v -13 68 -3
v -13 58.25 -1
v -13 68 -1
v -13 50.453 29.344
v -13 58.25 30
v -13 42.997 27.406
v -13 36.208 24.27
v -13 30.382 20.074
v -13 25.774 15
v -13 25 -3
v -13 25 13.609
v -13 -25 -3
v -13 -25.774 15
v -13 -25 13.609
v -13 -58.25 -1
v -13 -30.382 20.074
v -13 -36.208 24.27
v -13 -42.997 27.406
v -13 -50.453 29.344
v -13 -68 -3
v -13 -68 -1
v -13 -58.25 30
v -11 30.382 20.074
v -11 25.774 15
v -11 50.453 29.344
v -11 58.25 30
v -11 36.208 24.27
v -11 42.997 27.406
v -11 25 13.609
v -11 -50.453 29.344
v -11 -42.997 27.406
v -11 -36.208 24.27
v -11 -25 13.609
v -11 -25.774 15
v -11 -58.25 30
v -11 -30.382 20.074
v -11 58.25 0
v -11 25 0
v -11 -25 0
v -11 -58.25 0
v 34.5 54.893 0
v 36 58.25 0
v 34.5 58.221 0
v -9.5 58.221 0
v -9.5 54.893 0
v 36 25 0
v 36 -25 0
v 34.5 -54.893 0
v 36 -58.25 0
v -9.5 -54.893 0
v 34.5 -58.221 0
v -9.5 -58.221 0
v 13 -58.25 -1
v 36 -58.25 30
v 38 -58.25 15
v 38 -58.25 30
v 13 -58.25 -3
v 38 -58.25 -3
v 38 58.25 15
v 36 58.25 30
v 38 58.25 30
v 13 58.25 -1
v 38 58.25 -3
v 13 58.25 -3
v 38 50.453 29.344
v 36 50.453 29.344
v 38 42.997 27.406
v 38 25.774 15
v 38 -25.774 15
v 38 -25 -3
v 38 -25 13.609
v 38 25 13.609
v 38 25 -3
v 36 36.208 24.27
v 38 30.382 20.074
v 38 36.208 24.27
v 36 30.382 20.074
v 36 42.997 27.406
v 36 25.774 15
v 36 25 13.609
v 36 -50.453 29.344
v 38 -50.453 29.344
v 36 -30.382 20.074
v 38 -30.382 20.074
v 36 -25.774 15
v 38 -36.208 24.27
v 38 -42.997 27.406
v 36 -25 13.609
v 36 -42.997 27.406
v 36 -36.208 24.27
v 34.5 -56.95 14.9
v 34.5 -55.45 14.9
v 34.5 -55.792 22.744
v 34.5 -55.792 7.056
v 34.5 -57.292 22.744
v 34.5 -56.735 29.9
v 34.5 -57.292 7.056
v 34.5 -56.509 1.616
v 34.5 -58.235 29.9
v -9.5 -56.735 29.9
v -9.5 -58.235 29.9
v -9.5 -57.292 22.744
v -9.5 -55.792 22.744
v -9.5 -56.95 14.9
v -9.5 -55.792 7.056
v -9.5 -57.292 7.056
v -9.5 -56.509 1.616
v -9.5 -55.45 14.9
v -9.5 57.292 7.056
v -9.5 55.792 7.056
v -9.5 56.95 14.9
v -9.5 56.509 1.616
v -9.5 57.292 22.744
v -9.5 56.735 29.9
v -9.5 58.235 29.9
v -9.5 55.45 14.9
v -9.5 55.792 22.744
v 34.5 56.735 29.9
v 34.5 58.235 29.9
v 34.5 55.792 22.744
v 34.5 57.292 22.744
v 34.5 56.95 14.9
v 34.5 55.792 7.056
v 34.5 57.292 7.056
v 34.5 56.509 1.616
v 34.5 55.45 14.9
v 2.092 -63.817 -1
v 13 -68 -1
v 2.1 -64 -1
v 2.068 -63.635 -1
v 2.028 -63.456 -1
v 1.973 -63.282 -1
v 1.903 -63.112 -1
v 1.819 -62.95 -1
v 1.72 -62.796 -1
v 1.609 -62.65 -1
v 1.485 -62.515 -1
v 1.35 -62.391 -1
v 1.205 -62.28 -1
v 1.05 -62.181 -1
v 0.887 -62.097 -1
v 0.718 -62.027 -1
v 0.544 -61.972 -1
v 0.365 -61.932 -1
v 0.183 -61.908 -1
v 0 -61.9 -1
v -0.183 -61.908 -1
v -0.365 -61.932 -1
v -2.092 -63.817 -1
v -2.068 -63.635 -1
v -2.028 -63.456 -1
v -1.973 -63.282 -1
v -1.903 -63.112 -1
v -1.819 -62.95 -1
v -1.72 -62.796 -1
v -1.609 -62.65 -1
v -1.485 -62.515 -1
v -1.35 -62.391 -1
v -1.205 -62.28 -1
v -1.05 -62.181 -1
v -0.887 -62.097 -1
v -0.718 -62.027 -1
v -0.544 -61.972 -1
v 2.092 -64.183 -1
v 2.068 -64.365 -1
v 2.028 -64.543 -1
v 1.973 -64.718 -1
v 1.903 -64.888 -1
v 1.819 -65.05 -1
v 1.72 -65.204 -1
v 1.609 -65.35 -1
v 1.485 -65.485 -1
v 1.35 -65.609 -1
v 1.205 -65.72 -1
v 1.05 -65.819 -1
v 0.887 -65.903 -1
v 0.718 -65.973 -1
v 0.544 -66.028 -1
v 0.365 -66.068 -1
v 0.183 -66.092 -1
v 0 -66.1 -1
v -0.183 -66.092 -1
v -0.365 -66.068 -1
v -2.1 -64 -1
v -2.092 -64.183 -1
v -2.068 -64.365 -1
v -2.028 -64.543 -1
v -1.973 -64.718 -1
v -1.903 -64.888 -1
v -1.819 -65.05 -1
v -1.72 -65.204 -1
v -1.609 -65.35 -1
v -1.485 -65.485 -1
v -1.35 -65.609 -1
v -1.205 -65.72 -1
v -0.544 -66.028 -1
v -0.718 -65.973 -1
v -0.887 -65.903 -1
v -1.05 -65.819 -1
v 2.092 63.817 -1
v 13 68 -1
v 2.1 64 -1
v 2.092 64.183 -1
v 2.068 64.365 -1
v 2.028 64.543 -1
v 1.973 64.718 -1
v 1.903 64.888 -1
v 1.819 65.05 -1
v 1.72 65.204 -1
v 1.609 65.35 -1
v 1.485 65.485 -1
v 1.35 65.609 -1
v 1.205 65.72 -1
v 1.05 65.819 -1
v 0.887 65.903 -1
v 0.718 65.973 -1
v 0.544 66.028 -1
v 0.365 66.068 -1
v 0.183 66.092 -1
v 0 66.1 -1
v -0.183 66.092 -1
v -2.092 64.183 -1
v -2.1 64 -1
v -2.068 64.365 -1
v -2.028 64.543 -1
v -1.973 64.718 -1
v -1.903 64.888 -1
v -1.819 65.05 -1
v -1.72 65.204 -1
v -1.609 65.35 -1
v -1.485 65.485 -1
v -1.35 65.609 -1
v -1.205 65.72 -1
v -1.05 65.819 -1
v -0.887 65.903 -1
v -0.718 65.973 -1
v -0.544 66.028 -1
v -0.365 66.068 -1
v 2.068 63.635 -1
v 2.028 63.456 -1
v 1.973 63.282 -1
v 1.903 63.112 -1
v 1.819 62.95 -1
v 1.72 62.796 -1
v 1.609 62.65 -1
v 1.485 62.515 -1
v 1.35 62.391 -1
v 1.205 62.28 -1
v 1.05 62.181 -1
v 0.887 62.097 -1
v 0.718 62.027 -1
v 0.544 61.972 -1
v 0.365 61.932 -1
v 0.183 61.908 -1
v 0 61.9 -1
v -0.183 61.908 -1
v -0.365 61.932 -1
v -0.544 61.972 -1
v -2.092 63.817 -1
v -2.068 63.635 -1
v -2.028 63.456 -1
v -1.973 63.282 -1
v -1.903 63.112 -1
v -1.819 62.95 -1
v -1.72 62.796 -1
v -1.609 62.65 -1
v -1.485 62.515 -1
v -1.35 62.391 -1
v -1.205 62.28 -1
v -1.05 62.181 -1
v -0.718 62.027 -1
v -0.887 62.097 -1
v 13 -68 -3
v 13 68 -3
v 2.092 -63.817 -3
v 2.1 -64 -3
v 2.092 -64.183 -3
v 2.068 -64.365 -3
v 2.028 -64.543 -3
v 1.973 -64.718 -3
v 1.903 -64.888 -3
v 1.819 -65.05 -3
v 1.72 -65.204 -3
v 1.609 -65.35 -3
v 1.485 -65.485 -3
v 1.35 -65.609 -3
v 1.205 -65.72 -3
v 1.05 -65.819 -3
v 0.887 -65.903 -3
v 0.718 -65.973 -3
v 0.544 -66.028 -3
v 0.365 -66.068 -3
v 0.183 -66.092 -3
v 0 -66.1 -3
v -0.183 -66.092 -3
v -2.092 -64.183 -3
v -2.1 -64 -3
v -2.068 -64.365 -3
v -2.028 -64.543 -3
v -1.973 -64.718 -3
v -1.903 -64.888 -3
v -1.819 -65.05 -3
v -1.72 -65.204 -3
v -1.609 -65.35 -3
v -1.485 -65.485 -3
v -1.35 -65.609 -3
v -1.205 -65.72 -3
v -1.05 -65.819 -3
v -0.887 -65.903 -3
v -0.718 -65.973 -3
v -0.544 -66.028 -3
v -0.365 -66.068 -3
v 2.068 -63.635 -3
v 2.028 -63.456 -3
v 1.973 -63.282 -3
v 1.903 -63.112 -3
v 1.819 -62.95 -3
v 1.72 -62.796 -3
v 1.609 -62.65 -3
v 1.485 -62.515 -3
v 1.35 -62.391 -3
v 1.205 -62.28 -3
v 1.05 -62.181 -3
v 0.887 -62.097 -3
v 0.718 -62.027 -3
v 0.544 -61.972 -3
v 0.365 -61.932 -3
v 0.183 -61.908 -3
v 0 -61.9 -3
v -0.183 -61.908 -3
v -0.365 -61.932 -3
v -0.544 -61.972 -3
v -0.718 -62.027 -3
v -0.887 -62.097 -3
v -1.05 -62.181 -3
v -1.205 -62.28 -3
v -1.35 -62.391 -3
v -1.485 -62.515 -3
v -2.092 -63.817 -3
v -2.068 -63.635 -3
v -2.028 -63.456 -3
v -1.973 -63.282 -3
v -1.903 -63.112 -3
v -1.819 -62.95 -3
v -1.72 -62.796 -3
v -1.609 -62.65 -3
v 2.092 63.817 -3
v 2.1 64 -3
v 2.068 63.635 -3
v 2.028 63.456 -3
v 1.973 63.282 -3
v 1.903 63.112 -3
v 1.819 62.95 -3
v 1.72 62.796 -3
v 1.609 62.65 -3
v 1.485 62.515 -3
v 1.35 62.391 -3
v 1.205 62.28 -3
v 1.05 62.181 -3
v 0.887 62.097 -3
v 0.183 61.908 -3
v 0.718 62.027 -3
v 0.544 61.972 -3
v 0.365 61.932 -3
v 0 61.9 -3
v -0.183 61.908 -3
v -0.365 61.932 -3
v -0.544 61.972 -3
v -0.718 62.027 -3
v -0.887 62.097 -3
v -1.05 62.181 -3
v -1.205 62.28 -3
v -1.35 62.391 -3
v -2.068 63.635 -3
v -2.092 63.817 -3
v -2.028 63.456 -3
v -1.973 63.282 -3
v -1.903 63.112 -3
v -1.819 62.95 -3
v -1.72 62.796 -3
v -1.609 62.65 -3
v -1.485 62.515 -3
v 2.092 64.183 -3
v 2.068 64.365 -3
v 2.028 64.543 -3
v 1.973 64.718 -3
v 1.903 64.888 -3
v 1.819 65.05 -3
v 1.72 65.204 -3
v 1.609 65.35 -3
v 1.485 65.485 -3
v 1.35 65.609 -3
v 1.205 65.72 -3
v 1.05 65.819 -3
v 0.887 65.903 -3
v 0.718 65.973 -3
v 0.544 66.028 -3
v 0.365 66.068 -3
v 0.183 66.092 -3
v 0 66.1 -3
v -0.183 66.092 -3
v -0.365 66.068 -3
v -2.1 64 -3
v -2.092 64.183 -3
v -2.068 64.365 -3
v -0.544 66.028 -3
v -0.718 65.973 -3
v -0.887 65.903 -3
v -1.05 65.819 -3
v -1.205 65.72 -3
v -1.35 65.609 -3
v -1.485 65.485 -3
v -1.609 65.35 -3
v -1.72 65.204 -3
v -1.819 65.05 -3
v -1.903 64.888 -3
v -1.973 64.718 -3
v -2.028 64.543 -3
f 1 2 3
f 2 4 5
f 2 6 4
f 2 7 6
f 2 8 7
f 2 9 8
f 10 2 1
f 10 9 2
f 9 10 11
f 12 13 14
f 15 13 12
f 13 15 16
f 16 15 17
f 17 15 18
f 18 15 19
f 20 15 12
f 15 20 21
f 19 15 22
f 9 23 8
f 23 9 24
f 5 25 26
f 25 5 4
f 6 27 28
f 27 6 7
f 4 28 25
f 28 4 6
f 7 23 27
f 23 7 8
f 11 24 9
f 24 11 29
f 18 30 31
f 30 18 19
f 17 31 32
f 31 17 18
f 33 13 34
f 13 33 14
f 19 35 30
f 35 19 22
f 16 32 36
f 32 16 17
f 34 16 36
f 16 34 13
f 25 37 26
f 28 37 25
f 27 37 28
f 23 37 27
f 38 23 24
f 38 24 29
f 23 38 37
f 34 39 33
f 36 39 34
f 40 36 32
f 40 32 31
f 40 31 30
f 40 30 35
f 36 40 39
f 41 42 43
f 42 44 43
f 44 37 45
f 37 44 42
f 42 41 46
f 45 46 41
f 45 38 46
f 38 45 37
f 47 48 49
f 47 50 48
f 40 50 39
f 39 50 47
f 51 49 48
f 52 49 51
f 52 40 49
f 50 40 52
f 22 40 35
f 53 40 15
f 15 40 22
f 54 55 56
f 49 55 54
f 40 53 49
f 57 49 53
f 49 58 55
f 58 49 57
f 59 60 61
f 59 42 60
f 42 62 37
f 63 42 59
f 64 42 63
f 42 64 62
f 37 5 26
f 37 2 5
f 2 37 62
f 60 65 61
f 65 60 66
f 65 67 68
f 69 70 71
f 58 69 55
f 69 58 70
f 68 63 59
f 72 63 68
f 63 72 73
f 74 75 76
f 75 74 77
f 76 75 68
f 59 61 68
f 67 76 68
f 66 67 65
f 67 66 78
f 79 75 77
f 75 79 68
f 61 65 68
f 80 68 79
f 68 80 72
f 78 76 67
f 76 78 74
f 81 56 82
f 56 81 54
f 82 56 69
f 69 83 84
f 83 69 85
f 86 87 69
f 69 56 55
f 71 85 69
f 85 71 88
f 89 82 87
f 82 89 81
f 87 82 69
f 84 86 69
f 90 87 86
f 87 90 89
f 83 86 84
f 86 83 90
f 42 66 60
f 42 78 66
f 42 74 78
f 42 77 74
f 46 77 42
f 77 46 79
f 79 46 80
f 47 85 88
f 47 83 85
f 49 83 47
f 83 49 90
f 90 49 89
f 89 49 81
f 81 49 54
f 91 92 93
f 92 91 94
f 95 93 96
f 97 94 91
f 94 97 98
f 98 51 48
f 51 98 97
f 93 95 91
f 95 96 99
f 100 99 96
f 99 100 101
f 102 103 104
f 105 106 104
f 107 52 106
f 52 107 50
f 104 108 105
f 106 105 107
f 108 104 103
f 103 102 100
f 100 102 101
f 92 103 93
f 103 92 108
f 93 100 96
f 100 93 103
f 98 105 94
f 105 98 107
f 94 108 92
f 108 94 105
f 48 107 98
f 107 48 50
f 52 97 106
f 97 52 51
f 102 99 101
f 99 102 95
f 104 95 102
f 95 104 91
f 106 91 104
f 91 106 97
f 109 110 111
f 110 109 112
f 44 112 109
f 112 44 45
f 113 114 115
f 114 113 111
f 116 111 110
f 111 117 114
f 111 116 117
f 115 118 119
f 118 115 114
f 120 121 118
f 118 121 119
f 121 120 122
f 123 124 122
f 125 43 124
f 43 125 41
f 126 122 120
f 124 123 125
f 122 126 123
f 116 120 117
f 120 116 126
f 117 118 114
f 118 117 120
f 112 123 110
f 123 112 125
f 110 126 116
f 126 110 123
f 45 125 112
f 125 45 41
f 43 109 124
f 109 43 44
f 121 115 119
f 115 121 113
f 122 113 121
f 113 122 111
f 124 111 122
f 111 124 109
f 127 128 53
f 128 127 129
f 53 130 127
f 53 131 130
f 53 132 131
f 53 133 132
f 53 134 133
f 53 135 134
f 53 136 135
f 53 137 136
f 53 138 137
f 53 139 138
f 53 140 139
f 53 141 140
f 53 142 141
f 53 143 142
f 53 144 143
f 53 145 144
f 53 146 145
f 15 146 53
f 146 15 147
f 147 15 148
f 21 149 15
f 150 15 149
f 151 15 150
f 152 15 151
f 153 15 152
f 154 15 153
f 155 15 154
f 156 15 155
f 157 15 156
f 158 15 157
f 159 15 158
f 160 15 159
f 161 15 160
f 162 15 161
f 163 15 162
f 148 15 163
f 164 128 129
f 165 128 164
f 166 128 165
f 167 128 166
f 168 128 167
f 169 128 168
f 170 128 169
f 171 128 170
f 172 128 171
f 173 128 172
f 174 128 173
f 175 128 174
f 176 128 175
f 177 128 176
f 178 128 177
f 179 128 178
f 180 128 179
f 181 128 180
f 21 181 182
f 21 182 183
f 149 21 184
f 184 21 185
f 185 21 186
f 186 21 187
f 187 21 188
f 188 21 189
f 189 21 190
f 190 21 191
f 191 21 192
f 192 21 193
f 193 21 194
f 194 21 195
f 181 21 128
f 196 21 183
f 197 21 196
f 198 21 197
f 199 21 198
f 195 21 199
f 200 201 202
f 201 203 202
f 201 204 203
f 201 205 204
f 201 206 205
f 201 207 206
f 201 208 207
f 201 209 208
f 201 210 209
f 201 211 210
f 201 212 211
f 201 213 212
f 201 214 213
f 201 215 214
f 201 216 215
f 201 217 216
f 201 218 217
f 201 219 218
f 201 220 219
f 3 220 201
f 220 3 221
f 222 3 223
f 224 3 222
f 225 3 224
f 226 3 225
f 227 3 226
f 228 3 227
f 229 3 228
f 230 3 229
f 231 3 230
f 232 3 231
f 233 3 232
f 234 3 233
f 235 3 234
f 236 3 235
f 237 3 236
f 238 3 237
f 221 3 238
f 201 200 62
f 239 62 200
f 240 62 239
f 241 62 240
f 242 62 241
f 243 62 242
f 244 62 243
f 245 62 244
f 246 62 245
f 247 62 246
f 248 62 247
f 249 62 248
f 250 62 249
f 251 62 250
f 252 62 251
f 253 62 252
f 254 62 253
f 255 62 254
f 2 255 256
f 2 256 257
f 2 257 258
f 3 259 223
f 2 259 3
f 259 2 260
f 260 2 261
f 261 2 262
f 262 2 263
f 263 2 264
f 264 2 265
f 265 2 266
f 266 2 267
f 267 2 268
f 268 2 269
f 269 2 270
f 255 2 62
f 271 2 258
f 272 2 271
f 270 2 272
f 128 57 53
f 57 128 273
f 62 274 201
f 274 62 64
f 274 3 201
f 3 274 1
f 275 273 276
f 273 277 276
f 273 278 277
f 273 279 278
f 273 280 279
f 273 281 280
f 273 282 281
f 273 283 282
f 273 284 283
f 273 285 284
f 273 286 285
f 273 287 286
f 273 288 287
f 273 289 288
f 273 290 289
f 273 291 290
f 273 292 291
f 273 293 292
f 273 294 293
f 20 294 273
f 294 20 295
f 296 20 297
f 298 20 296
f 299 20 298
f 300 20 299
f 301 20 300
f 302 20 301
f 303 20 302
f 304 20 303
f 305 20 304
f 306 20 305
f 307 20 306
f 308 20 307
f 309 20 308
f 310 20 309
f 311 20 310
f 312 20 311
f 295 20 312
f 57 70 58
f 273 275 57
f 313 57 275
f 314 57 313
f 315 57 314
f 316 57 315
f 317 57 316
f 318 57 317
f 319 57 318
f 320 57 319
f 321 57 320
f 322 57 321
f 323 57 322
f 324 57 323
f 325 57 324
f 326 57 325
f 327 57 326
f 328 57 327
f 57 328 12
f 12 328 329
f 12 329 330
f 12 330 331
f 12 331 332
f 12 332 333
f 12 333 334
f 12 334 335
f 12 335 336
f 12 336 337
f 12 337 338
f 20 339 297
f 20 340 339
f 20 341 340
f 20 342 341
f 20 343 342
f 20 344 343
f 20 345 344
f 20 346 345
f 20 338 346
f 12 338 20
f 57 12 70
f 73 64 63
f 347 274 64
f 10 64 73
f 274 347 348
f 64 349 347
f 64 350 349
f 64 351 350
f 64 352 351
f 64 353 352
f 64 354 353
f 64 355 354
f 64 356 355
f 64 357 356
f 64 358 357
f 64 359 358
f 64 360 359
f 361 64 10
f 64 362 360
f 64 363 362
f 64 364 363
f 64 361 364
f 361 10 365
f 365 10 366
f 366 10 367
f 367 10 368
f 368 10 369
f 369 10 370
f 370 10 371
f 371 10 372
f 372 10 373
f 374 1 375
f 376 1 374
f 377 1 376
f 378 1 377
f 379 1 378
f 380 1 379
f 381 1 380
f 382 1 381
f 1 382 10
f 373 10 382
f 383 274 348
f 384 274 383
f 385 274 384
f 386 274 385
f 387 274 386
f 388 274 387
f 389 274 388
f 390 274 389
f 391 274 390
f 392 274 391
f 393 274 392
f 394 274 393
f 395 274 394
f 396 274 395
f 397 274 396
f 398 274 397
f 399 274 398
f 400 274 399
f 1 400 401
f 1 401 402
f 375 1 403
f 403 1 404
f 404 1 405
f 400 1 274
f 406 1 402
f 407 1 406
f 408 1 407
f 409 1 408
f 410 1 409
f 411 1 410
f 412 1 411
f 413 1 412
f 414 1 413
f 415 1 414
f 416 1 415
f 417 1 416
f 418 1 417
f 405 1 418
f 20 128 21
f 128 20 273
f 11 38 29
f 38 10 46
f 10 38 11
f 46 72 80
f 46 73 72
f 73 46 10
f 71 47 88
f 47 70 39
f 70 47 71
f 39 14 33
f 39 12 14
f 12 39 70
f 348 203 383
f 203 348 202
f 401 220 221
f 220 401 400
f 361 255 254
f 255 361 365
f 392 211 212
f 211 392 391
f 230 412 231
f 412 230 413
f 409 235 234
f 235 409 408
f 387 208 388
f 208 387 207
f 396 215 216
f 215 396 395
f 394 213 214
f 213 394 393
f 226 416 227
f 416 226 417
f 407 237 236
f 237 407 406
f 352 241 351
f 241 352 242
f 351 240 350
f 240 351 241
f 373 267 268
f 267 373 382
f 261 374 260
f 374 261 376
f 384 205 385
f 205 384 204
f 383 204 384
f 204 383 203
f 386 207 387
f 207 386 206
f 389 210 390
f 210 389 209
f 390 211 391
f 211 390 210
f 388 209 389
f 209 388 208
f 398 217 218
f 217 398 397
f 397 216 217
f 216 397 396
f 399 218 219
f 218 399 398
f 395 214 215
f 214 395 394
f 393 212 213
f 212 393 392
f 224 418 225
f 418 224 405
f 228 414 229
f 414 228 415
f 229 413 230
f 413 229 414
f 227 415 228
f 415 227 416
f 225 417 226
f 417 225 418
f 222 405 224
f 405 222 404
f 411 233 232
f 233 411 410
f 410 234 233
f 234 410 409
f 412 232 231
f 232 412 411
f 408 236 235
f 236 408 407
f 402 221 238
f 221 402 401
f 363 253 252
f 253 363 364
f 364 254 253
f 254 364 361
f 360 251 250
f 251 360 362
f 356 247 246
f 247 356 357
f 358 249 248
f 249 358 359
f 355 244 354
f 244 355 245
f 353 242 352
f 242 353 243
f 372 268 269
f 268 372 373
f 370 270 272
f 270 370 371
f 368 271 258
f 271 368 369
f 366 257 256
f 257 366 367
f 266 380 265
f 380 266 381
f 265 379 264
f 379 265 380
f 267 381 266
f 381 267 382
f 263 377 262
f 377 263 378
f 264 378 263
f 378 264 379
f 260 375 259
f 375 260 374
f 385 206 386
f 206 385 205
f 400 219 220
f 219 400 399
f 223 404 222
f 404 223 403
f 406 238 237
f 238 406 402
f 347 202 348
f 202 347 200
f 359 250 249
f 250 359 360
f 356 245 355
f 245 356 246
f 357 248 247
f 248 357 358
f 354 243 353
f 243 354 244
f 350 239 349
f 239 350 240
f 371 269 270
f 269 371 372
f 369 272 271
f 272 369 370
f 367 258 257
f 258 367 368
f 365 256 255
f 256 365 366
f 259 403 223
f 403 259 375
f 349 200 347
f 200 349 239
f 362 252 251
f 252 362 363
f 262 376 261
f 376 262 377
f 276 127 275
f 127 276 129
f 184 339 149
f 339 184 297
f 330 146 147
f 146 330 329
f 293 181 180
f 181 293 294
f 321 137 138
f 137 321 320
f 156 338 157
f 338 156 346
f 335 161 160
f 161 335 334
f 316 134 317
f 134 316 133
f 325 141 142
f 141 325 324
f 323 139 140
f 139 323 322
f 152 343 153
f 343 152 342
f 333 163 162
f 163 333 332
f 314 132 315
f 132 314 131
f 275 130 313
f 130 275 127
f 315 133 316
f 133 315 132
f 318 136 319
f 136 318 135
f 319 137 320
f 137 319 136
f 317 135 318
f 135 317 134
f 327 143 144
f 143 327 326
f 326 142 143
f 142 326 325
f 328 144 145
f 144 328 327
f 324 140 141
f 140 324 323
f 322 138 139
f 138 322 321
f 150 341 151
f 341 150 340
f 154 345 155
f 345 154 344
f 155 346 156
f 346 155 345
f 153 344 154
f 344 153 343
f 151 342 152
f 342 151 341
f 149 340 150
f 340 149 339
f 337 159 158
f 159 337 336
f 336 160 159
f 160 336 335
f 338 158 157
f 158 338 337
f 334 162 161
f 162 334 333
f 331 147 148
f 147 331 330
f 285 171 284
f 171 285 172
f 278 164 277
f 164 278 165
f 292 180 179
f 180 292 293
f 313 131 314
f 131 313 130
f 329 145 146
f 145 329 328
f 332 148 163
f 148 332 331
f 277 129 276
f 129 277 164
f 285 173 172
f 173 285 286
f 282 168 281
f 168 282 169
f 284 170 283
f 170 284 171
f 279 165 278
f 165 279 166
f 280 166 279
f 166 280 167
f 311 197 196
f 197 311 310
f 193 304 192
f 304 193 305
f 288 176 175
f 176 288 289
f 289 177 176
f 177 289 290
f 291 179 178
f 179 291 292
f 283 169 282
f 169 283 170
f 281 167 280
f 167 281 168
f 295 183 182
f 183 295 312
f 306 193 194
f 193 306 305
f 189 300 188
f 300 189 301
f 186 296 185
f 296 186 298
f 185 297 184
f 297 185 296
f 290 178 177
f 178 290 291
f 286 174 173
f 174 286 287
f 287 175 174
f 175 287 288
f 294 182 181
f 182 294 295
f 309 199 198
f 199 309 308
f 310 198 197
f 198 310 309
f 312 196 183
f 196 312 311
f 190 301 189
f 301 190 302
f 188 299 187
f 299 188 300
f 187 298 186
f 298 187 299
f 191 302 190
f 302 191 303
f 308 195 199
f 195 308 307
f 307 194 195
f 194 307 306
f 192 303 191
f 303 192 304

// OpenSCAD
holeDepth = 4;
holeOffset = 64;
holeRadius = 2.1;
holeFacets = 72;

difference() {
    union() {
         translate([-13,-68,-3])
            cube([26,136,2]); 
         translate([-13,-58.25,-3])
            cube([51,116.5,3]);
        
        intersection() {
            translate([-13,-58.25,0])
                cube([2,116.5,30]);
            
            union() {
                translate([-13,58.25,0])
                    scale([1,1.25,1])
                        rotate([0,90,0])
                            cylinder(r=30,h=2);
                translate([-13,-58.25,0])
                    scale([1,1.25,1])
                        rotate([0,90,0])
                        cylinder(r=30,h=2);
            }
        }
        
        intersection() {
            translate([36,-58.25,0])
                cube([2,116.5,30]);
            
            union() {
                translate([36,58.25,0])
                    scale([1,1.25,1])
                        rotate([0,90,0])
                            cylinder(r=30,h=2);
                translate([36,-58.25,0])
                    scale([1,1.25,1])
                        rotate([0,90,0])
                        cylinder(r=30,h=2);
            }
        }
        
        translate([-9.5,-55.45,14.9])
        EndCap();

        translate([34.5,55.45,14.9])
        rotate([0,0,180])
        EndCap();
    }
    
   // translate([-11,-56,-2.5])
       // color("green")
          //  cube([47,112,48]);
    cube([100,50,100], center=true);
    
    translate([0,holeOffset,-2])
        cylinder(r=holeRadius,h=holeDepth,
                 center=true, $fn=holeFacets);
    translate([0,-holeOffset,-2])
        cylinder(r=holeRadius,h=holeDepth,
                 center=true, $fn=holeFacets);
}


module EndCap()
{    sliceThickness=4;
    radius = 90;
    rotate([90,0,90])
    difference () {
        intersection() {
            union() {
                intersection() {
                    translate([-sliceThickness,-15,0])
                        cube([sliceThickness,30,44]);
                    translate([-radius,0,0])
                    cylinder(r=radius,h=44,$fn=holeFacets);
                }
                
                translate([-2,-18,0])
                rotate([0,0,45])
                cube([4,4,44]);
            }
            cube([100,30,100], center=true);
        }
 
        translate([-radius-1.5,0,-2])
            cylinder(r=radius,h=48,$fn=holeFacets);
    }
}



/*
rotate([0,180,0])
difference() {
    union() {

        translate([-12.5,0,24])
            cube([26,136,2],center=true);
        translate([0,0,10])
            cube([51,113,30],center=true);

    }
    translate([0,0,-2.5])
        color("green")
            cube([47,112,48], center=true);

    cube([100,50,100], center=true);

    translate([0,0,3])
    cube([47,200,24],center = true);
    
    translate([-12.5,holeOffset,24])
        cylinder(r=holeRadius,h=holeDepth,
                 center=true, $fn=holeFacets);
    translate([-12.5,-holeOffset,24])
        cylinder(r=holeRadius,h=holeDepth,
                 center=true, $fn=holeFacets);
            
}


*/
module Holes() {
    translate([holeOffset,0,0])
        cylinder(r=holeRadius,h=holeDepth,
                 center=true, $fn=holeFacets);
    translate([-holeOffset,0,0])
        cylinder(r=holeRadius,h=holeDepth,
                 center=true, $fn=holeFacets);
    translate([0,holeOffset,0])
        cylinder(r=holeRadius,h=holeDepth,
                 center=true, $fn=holeFacets);
    translate([0,-holeOffset,0])
        cylinder(r=holeRadius,h=holeDepth,
                 center=true, $fn=holeFacets);
}
